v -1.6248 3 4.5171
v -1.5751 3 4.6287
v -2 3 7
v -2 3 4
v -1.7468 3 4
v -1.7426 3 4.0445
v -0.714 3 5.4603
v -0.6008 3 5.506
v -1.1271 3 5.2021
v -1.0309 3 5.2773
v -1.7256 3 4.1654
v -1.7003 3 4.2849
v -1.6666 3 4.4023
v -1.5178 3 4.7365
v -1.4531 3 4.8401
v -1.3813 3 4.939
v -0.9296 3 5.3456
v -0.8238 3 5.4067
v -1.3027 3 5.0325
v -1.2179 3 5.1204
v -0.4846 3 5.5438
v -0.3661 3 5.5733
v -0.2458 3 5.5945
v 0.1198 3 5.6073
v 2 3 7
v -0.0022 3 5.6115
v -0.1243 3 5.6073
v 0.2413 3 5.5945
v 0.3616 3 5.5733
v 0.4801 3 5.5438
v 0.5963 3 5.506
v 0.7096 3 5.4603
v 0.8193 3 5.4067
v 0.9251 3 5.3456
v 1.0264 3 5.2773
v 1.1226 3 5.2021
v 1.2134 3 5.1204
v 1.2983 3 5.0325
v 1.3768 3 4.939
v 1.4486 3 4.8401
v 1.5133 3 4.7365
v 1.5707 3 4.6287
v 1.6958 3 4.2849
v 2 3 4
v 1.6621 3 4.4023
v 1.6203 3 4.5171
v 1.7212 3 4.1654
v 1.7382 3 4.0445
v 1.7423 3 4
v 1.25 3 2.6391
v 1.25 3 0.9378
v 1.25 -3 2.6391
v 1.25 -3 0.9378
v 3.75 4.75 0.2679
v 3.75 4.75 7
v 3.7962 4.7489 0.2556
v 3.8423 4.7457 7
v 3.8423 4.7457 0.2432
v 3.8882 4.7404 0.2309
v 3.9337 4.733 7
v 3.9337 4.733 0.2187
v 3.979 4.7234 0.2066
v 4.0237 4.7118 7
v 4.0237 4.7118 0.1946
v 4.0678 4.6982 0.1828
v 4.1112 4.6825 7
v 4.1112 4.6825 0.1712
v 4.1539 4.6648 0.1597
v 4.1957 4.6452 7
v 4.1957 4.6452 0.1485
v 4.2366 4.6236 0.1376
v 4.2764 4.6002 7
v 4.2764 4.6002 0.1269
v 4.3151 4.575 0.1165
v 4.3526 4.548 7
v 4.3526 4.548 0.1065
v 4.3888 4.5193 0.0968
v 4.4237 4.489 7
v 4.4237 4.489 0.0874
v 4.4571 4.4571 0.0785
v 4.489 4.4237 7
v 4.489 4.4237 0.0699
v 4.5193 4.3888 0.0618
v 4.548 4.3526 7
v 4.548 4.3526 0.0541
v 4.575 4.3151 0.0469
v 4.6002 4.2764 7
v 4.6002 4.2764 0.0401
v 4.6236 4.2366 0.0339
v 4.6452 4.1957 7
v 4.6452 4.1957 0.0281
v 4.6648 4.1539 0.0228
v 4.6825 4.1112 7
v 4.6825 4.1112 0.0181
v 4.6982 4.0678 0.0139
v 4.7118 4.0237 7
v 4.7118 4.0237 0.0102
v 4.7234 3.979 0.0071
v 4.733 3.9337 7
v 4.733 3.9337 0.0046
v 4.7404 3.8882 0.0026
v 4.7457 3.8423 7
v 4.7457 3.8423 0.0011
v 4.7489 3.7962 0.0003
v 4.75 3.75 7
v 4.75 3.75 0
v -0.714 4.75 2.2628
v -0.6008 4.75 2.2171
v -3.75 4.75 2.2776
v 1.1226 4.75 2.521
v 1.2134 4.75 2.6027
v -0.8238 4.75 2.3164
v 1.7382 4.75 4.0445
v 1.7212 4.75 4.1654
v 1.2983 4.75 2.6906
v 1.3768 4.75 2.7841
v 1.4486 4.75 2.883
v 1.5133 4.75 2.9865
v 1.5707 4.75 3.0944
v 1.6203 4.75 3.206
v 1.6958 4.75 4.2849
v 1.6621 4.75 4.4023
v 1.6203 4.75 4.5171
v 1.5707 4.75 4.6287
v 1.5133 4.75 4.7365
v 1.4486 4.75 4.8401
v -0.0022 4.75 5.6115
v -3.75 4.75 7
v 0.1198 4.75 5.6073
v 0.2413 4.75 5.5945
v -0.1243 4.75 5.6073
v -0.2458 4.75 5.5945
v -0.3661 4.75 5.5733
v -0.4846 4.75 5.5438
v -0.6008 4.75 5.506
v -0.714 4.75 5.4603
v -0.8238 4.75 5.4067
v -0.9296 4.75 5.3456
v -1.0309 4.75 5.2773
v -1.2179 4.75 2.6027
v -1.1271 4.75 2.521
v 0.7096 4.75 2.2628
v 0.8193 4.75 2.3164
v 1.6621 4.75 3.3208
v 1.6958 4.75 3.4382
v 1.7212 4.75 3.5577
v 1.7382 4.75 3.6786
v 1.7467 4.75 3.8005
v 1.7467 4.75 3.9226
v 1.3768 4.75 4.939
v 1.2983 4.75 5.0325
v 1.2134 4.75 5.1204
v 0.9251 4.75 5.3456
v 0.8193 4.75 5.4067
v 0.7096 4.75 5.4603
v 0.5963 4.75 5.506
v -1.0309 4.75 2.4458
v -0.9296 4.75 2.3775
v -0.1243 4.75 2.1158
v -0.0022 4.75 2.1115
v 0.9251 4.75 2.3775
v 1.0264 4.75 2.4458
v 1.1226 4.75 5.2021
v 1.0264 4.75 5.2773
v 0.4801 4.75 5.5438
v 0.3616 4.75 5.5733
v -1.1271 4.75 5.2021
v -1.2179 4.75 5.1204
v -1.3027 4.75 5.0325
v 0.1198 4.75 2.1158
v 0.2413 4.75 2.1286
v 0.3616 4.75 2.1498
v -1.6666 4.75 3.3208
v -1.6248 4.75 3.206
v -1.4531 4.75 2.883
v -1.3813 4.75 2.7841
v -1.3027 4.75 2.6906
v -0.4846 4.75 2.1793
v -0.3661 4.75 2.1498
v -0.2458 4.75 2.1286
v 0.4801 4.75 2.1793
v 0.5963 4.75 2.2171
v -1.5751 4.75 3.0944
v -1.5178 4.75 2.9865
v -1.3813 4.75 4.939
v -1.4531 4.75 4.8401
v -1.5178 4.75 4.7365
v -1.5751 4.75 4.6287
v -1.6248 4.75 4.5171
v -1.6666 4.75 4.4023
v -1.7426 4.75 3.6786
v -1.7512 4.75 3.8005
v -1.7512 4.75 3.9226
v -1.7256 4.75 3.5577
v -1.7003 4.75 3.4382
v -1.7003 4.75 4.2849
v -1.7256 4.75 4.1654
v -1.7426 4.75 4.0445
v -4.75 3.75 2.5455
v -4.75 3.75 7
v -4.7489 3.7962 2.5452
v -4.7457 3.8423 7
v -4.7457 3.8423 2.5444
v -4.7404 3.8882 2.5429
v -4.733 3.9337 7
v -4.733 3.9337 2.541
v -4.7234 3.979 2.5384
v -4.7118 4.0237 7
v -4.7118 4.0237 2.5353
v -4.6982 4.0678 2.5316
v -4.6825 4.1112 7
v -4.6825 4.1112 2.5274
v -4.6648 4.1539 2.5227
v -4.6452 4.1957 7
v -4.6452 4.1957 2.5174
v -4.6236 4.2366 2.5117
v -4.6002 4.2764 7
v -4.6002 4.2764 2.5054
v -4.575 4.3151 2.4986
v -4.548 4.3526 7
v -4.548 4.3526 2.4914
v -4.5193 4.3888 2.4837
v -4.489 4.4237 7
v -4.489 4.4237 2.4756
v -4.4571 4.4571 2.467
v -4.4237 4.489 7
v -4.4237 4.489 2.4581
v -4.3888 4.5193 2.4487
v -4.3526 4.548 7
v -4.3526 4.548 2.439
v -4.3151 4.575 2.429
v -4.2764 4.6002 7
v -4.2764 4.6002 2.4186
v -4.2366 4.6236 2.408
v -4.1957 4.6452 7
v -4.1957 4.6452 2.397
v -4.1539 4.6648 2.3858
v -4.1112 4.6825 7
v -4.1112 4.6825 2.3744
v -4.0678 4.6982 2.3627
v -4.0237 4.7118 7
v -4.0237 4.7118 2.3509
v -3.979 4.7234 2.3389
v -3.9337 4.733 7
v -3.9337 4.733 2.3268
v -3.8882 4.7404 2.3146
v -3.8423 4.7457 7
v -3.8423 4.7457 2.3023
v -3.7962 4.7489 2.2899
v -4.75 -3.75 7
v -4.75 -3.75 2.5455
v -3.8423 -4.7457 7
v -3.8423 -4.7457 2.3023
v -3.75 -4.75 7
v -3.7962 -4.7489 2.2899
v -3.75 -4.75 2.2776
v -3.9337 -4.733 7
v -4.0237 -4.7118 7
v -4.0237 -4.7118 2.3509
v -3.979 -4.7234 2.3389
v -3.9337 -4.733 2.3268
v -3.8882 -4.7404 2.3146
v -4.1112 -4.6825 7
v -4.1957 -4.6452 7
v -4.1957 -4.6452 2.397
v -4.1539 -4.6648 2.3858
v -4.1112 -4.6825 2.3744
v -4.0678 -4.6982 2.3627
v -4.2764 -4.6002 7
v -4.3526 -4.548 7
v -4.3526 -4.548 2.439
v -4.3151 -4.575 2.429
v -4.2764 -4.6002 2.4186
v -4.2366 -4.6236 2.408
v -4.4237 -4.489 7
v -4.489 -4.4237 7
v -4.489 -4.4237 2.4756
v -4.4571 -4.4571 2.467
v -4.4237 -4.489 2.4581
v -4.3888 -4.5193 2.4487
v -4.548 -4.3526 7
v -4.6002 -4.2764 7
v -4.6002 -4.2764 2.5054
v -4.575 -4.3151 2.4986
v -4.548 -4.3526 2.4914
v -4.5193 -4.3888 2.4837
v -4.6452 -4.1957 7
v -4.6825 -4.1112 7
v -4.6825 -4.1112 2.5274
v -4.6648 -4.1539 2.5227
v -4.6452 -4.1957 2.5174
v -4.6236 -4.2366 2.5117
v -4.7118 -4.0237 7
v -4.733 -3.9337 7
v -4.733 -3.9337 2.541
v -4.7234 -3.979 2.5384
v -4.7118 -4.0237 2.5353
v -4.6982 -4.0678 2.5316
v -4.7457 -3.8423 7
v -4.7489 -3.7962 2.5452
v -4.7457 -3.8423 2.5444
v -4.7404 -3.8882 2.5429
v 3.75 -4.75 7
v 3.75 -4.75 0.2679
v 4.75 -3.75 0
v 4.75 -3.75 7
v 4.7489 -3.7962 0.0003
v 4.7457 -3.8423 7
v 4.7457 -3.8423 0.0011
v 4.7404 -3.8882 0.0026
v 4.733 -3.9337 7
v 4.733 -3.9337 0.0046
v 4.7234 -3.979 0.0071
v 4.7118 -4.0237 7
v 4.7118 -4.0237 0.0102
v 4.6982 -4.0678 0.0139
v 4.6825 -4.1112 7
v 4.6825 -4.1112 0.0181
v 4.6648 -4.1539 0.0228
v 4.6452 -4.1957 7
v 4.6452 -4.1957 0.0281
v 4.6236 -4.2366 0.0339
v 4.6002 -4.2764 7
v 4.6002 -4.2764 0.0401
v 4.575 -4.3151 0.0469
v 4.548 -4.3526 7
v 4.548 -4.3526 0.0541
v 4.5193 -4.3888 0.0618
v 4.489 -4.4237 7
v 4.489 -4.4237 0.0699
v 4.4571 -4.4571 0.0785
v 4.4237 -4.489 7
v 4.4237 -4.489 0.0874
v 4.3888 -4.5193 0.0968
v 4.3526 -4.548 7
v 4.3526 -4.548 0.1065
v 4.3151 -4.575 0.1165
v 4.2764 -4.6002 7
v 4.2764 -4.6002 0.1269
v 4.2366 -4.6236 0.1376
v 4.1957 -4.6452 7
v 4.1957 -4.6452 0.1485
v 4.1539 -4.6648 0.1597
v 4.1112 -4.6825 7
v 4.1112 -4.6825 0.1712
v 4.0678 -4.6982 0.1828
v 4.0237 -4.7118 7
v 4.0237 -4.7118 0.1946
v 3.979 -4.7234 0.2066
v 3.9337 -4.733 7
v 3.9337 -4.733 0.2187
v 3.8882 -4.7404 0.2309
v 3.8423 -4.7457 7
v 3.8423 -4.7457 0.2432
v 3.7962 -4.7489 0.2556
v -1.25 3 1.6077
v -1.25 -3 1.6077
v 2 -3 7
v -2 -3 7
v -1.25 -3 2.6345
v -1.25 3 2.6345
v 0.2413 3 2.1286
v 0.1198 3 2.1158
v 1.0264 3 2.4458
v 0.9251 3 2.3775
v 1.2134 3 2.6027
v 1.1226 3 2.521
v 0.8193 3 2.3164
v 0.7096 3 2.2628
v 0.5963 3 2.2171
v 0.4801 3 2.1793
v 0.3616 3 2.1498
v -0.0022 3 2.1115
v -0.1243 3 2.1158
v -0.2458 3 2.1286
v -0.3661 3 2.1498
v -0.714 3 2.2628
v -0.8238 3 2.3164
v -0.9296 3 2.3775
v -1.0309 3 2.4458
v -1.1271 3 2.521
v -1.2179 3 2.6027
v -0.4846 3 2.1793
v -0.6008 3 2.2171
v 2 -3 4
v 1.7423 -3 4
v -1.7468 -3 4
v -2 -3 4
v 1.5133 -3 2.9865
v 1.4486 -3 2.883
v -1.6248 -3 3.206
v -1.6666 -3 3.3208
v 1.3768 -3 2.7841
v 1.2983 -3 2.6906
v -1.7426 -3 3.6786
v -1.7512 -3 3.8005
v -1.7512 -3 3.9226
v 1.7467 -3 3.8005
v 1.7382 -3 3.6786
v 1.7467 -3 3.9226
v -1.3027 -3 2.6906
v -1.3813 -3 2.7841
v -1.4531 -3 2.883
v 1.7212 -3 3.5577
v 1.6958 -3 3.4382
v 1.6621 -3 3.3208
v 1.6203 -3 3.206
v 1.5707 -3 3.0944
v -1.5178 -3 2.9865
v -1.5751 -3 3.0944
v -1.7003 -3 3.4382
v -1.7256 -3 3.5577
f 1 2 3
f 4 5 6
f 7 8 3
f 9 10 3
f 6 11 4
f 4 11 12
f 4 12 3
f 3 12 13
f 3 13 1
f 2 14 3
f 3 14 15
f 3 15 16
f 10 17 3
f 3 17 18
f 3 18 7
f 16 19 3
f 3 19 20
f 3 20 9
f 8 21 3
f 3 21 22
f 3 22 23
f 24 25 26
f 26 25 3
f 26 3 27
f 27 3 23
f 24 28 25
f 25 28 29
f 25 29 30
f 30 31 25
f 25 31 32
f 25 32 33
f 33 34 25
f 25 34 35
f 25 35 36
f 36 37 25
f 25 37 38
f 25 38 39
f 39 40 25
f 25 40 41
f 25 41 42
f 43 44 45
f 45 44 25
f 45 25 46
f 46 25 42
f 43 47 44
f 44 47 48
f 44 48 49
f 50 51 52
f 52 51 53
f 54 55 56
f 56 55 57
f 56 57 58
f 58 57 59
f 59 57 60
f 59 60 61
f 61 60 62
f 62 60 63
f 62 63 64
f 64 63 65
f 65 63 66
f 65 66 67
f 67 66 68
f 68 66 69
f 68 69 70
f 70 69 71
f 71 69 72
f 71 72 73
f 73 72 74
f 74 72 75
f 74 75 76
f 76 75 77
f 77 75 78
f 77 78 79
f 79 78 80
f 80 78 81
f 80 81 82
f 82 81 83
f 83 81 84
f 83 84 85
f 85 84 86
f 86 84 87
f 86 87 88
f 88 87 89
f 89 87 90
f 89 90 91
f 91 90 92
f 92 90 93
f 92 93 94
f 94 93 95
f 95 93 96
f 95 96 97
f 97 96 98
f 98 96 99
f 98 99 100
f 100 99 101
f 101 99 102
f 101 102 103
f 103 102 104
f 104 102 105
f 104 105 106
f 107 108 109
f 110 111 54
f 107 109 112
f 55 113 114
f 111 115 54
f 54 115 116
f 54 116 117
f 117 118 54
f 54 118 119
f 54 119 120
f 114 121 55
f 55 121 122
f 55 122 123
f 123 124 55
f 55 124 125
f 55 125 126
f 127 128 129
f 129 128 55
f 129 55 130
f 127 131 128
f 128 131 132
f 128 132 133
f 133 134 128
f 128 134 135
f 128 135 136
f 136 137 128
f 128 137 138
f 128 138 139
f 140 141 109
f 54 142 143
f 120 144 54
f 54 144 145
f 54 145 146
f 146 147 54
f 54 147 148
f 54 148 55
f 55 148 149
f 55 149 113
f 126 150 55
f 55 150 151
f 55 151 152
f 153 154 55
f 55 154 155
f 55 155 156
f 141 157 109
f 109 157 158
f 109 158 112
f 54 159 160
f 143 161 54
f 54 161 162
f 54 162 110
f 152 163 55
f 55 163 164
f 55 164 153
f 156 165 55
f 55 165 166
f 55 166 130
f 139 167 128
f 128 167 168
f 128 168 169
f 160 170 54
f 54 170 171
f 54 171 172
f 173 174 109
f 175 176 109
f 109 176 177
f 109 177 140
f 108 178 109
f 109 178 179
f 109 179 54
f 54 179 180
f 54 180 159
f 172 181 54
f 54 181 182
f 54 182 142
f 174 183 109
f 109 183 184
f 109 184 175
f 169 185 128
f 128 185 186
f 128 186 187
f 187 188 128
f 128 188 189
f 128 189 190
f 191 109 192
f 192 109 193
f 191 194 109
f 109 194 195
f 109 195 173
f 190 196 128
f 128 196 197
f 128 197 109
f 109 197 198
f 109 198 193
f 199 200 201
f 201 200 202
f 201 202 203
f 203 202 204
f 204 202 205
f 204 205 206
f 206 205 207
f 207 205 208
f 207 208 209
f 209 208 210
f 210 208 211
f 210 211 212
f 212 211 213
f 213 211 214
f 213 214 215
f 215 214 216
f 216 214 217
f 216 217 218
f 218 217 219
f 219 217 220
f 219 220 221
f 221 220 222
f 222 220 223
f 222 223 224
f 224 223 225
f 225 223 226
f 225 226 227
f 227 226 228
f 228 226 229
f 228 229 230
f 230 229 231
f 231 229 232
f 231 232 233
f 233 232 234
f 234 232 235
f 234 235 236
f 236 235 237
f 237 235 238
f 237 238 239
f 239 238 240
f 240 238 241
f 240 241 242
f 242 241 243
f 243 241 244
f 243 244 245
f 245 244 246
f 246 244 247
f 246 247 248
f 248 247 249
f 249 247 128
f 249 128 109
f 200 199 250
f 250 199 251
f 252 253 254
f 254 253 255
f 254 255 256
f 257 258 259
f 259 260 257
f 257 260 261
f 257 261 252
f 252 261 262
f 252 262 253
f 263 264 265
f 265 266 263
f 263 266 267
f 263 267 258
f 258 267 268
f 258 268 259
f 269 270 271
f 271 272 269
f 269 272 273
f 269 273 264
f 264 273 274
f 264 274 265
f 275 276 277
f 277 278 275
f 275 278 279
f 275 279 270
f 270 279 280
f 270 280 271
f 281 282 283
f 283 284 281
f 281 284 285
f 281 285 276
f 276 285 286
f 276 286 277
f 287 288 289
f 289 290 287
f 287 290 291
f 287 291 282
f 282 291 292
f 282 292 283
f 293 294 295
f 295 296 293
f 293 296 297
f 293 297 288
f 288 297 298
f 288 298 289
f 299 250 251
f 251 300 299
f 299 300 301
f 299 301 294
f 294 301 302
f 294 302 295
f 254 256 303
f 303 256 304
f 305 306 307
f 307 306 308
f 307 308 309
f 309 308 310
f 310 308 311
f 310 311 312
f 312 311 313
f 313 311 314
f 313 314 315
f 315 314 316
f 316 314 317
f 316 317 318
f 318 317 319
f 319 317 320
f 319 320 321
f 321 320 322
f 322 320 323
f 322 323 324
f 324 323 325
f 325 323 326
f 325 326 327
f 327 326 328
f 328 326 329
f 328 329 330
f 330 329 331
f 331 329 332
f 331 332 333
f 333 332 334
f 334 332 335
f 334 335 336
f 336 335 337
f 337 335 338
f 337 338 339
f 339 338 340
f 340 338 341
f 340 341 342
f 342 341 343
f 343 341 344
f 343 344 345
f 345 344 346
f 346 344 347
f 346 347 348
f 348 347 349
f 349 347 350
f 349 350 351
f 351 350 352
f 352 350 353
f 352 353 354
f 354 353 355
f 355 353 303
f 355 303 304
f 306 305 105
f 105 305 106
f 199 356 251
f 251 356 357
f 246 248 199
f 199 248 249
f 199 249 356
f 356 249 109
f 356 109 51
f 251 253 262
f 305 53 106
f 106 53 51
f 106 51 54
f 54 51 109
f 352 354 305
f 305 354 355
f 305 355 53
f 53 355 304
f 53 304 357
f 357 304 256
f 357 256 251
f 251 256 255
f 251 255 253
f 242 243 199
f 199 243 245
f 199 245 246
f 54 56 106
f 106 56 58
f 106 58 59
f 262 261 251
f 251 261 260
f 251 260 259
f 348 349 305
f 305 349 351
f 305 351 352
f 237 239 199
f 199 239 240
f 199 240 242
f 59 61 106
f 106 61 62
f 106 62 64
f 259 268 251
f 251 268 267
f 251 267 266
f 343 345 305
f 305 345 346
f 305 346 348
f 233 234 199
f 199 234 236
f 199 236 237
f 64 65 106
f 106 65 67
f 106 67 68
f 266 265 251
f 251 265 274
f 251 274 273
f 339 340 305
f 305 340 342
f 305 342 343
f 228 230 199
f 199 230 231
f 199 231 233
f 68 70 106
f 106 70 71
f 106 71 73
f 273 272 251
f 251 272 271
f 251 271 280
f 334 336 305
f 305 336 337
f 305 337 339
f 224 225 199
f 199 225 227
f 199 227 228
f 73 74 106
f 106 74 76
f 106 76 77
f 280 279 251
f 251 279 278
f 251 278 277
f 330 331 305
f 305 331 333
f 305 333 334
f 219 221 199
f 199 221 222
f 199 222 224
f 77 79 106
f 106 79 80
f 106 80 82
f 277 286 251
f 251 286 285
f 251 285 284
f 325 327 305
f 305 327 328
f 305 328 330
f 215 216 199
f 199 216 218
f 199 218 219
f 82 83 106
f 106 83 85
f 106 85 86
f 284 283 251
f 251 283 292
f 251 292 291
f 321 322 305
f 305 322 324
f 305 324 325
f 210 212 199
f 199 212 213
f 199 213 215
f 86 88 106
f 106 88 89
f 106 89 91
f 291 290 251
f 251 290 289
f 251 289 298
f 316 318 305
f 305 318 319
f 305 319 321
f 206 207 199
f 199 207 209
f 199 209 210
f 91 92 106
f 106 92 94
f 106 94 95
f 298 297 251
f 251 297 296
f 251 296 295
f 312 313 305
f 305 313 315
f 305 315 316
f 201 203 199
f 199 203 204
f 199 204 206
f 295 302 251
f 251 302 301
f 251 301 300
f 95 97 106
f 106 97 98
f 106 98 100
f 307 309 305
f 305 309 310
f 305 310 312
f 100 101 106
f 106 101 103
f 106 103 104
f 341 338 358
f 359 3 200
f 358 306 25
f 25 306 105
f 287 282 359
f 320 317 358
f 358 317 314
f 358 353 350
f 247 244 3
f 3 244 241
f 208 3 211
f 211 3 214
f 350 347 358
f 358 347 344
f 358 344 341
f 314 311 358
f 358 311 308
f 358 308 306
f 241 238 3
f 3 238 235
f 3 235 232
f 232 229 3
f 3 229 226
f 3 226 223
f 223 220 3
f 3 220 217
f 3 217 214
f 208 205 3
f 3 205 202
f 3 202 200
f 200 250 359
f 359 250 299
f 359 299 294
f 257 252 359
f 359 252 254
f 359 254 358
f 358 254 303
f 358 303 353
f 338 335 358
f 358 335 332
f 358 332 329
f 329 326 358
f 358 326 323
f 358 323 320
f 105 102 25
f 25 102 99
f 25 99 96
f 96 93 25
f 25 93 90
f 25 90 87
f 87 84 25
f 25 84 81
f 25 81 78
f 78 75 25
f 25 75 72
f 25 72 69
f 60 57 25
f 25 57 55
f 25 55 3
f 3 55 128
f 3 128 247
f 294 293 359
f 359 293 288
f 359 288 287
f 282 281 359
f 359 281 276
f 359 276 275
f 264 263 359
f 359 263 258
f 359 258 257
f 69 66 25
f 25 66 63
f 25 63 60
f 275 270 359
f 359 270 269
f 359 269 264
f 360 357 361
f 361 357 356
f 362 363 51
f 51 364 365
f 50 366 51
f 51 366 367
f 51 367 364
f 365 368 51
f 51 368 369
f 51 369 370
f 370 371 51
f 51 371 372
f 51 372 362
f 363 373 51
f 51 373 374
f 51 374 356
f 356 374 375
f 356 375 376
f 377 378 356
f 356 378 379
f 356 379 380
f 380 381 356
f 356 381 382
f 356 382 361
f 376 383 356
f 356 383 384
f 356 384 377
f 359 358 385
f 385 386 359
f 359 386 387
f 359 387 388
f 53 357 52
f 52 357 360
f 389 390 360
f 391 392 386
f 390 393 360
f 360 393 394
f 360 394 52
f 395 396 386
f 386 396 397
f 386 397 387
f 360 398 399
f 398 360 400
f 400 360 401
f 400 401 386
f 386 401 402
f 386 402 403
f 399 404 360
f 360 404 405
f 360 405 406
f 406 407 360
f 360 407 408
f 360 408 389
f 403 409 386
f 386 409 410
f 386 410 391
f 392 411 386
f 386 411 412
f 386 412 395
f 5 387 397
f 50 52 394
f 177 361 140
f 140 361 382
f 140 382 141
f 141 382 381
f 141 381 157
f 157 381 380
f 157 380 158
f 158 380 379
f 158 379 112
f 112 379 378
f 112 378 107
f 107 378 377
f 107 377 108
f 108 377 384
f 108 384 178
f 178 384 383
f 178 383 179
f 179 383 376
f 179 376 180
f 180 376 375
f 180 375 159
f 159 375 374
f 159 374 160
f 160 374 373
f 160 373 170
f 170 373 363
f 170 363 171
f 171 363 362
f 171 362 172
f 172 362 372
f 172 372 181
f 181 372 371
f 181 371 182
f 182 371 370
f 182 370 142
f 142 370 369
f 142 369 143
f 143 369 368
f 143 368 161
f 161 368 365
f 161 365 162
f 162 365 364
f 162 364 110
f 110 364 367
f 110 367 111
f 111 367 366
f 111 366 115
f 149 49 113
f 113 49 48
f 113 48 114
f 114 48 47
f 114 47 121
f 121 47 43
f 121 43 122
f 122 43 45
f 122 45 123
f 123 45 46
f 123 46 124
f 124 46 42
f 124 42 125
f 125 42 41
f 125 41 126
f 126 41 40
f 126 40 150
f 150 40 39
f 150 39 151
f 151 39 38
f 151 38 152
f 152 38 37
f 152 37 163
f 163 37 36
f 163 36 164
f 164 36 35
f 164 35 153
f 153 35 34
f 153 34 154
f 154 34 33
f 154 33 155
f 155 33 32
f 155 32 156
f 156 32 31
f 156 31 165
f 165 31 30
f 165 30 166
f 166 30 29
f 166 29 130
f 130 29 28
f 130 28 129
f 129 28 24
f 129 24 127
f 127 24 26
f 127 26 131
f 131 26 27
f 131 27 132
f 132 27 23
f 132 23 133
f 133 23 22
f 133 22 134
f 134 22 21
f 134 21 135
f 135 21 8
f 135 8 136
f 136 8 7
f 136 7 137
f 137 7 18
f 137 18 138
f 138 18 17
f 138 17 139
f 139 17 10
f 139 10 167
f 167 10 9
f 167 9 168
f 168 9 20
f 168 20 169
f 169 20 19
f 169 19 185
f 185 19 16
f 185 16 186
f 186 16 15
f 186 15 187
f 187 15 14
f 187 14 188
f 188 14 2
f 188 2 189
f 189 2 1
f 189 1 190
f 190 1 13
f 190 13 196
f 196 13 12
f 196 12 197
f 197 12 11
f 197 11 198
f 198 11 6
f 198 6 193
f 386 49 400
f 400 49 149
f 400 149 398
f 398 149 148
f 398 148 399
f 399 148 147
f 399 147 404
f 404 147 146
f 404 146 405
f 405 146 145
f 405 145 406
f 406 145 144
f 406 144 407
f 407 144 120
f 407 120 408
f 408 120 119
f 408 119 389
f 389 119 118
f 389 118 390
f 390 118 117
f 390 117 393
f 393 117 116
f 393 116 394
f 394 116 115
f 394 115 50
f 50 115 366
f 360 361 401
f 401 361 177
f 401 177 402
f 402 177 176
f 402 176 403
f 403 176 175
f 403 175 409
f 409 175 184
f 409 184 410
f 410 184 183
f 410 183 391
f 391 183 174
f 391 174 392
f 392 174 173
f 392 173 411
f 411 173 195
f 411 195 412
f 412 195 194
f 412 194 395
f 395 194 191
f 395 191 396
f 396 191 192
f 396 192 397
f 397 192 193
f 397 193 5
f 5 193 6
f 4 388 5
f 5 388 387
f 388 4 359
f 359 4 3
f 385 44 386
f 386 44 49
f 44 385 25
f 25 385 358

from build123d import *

# Parameters (mm, degrees)
BOSS_EXTRUDE1_DEPTH = 10
CUT_EXTRUDE1_DEPTH  = 5
SKETCH11_W          = 9.5
SKETCH11_H          = 3
CUT_EXTRUDE9_DEPTH  = 15.588094461
SKETCH17_W          = 2.5
SKETCH17_H          = 6
CUT_EXTRUDE13_DEPTH = 10.701803956
CUT_EXTRUDE14_REACH = 14.721
SKETCH16_R          = 1.75
SKETCH18_W          = 4
SKETCH18_H          = 6
CUT_EXTRUDE15_DEPTH = 3


with BuildPart() as part:
    # Sketch1 → Boss-Extrude1 (new body)
    with BuildSketch(Plane.XY):
        with BuildLine():
            Line((-3.75, 4.75), (3.75, 4.75))
            ThreePointArc((3.75, 4.75), (4.457106781, 4.457106781), (4.75, 3.75))
            Line((4.75, 3.75), (4.75, -3.75))
            ThreePointArc((4.75, -3.75), (4.457106781, -4.457106781), (3.75, -4.75))
            Line((3.75, -4.75), (-3.75, -4.75))
            ThreePointArc((-3.75, -4.75), (-4.457106781, -4.457106781), (-4.75, -3.75))
            Line((-4.75, -3.75), (-4.75, 3.75))
            ThreePointArc((-4.75, 3.75), (-4.457106781, 4.457106781), (-3.75, 4.75))
        make_face()
    extrude(amount=BOSS_EXTRUDE1_DEPTH)

    # Sketch2 → Cut-Extrude1 (cut, symmetric)
    with BuildSketch(Plane(origin=(0, 0, 0), x_dir=(1, 0, 0), z_dir=(0, 1, 0))):
        Polygon((4.75, 0), (-4.75, 0), (-4.75, -2.545517328), align=None)
    extrude(amount=CUT_EXTRUDE1_DEPTH, both=True, mode=Mode.SUBTRACT)

    # Sketch11 → Cut-Extrude9 (cut, through all)
    with BuildSketch(Plane(origin=(0, 4.75, 0), x_dir=(1, 0, 0), z_dir=(0, 1, 0))):
        with Locations((0, -8.5)):
            Rectangle(SKETCH11_W, SKETCH11_H)
    extrude(amount=-CUT_EXTRUDE9_DEPTH, mode=Mode.SUBTRACT)

    # Sketch17 → Cut-Extrude13 (cut, through all)
    with BuildSketch(Plane.XY.offset(7)):
        Rectangle(SKETCH17_W, SKETCH17_H)
    extrude(amount=-CUT_EXTRUDE13_DEPTH, mode=Mode.SUBTRACT)

    # Cut-Extrude14: up to this face of the body (flat: up to its plane)
    cut_extrude14_end = Plane(part.part.faces().sort_by_distance((0.024367206, -3, 4.133114745))[0])
    # Sketch16 → Cut-Extrude14 (cut, up to the picked face)
    with BuildSketch(Plane(origin=(0, 4.75, 0), x_dir=(1, 0, 0), z_dir=(0, 1, 0)), mode=Mode.PRIVATE) as cut_extrude14_sk1:
        with Locations(Location((-0.002235874, -3.861548216, 0), (0, 0, 270))):
            Circle(SKETCH16_R)
    cut_extrude14_tool1 = split(extrude(cut_extrude14_sk1.sketch, amount=-CUT_EXTRUDE14_REACH, mode=Mode.PRIVATE), bisect_by=cut_extrude14_end, keep=Keep.BOTH, mode=Mode.PRIVATE)
    add(cut_extrude14_tool1.solids().sort_by(Axis((-0.002236, 4.75, 3.861548), (0, -1, 0)))[0], mode=Mode.SUBTRACT)

    # Sketch18 → Cut-Extrude15 (cut)
    with BuildSketch(Plane.XY.offset(7)):
        Rectangle(SKETCH18_W, SKETCH18_H)
    extrude(amount=-CUT_EXTRUDE15_DEPTH, mode=Mode.SUBTRACT)


solid = part.part
